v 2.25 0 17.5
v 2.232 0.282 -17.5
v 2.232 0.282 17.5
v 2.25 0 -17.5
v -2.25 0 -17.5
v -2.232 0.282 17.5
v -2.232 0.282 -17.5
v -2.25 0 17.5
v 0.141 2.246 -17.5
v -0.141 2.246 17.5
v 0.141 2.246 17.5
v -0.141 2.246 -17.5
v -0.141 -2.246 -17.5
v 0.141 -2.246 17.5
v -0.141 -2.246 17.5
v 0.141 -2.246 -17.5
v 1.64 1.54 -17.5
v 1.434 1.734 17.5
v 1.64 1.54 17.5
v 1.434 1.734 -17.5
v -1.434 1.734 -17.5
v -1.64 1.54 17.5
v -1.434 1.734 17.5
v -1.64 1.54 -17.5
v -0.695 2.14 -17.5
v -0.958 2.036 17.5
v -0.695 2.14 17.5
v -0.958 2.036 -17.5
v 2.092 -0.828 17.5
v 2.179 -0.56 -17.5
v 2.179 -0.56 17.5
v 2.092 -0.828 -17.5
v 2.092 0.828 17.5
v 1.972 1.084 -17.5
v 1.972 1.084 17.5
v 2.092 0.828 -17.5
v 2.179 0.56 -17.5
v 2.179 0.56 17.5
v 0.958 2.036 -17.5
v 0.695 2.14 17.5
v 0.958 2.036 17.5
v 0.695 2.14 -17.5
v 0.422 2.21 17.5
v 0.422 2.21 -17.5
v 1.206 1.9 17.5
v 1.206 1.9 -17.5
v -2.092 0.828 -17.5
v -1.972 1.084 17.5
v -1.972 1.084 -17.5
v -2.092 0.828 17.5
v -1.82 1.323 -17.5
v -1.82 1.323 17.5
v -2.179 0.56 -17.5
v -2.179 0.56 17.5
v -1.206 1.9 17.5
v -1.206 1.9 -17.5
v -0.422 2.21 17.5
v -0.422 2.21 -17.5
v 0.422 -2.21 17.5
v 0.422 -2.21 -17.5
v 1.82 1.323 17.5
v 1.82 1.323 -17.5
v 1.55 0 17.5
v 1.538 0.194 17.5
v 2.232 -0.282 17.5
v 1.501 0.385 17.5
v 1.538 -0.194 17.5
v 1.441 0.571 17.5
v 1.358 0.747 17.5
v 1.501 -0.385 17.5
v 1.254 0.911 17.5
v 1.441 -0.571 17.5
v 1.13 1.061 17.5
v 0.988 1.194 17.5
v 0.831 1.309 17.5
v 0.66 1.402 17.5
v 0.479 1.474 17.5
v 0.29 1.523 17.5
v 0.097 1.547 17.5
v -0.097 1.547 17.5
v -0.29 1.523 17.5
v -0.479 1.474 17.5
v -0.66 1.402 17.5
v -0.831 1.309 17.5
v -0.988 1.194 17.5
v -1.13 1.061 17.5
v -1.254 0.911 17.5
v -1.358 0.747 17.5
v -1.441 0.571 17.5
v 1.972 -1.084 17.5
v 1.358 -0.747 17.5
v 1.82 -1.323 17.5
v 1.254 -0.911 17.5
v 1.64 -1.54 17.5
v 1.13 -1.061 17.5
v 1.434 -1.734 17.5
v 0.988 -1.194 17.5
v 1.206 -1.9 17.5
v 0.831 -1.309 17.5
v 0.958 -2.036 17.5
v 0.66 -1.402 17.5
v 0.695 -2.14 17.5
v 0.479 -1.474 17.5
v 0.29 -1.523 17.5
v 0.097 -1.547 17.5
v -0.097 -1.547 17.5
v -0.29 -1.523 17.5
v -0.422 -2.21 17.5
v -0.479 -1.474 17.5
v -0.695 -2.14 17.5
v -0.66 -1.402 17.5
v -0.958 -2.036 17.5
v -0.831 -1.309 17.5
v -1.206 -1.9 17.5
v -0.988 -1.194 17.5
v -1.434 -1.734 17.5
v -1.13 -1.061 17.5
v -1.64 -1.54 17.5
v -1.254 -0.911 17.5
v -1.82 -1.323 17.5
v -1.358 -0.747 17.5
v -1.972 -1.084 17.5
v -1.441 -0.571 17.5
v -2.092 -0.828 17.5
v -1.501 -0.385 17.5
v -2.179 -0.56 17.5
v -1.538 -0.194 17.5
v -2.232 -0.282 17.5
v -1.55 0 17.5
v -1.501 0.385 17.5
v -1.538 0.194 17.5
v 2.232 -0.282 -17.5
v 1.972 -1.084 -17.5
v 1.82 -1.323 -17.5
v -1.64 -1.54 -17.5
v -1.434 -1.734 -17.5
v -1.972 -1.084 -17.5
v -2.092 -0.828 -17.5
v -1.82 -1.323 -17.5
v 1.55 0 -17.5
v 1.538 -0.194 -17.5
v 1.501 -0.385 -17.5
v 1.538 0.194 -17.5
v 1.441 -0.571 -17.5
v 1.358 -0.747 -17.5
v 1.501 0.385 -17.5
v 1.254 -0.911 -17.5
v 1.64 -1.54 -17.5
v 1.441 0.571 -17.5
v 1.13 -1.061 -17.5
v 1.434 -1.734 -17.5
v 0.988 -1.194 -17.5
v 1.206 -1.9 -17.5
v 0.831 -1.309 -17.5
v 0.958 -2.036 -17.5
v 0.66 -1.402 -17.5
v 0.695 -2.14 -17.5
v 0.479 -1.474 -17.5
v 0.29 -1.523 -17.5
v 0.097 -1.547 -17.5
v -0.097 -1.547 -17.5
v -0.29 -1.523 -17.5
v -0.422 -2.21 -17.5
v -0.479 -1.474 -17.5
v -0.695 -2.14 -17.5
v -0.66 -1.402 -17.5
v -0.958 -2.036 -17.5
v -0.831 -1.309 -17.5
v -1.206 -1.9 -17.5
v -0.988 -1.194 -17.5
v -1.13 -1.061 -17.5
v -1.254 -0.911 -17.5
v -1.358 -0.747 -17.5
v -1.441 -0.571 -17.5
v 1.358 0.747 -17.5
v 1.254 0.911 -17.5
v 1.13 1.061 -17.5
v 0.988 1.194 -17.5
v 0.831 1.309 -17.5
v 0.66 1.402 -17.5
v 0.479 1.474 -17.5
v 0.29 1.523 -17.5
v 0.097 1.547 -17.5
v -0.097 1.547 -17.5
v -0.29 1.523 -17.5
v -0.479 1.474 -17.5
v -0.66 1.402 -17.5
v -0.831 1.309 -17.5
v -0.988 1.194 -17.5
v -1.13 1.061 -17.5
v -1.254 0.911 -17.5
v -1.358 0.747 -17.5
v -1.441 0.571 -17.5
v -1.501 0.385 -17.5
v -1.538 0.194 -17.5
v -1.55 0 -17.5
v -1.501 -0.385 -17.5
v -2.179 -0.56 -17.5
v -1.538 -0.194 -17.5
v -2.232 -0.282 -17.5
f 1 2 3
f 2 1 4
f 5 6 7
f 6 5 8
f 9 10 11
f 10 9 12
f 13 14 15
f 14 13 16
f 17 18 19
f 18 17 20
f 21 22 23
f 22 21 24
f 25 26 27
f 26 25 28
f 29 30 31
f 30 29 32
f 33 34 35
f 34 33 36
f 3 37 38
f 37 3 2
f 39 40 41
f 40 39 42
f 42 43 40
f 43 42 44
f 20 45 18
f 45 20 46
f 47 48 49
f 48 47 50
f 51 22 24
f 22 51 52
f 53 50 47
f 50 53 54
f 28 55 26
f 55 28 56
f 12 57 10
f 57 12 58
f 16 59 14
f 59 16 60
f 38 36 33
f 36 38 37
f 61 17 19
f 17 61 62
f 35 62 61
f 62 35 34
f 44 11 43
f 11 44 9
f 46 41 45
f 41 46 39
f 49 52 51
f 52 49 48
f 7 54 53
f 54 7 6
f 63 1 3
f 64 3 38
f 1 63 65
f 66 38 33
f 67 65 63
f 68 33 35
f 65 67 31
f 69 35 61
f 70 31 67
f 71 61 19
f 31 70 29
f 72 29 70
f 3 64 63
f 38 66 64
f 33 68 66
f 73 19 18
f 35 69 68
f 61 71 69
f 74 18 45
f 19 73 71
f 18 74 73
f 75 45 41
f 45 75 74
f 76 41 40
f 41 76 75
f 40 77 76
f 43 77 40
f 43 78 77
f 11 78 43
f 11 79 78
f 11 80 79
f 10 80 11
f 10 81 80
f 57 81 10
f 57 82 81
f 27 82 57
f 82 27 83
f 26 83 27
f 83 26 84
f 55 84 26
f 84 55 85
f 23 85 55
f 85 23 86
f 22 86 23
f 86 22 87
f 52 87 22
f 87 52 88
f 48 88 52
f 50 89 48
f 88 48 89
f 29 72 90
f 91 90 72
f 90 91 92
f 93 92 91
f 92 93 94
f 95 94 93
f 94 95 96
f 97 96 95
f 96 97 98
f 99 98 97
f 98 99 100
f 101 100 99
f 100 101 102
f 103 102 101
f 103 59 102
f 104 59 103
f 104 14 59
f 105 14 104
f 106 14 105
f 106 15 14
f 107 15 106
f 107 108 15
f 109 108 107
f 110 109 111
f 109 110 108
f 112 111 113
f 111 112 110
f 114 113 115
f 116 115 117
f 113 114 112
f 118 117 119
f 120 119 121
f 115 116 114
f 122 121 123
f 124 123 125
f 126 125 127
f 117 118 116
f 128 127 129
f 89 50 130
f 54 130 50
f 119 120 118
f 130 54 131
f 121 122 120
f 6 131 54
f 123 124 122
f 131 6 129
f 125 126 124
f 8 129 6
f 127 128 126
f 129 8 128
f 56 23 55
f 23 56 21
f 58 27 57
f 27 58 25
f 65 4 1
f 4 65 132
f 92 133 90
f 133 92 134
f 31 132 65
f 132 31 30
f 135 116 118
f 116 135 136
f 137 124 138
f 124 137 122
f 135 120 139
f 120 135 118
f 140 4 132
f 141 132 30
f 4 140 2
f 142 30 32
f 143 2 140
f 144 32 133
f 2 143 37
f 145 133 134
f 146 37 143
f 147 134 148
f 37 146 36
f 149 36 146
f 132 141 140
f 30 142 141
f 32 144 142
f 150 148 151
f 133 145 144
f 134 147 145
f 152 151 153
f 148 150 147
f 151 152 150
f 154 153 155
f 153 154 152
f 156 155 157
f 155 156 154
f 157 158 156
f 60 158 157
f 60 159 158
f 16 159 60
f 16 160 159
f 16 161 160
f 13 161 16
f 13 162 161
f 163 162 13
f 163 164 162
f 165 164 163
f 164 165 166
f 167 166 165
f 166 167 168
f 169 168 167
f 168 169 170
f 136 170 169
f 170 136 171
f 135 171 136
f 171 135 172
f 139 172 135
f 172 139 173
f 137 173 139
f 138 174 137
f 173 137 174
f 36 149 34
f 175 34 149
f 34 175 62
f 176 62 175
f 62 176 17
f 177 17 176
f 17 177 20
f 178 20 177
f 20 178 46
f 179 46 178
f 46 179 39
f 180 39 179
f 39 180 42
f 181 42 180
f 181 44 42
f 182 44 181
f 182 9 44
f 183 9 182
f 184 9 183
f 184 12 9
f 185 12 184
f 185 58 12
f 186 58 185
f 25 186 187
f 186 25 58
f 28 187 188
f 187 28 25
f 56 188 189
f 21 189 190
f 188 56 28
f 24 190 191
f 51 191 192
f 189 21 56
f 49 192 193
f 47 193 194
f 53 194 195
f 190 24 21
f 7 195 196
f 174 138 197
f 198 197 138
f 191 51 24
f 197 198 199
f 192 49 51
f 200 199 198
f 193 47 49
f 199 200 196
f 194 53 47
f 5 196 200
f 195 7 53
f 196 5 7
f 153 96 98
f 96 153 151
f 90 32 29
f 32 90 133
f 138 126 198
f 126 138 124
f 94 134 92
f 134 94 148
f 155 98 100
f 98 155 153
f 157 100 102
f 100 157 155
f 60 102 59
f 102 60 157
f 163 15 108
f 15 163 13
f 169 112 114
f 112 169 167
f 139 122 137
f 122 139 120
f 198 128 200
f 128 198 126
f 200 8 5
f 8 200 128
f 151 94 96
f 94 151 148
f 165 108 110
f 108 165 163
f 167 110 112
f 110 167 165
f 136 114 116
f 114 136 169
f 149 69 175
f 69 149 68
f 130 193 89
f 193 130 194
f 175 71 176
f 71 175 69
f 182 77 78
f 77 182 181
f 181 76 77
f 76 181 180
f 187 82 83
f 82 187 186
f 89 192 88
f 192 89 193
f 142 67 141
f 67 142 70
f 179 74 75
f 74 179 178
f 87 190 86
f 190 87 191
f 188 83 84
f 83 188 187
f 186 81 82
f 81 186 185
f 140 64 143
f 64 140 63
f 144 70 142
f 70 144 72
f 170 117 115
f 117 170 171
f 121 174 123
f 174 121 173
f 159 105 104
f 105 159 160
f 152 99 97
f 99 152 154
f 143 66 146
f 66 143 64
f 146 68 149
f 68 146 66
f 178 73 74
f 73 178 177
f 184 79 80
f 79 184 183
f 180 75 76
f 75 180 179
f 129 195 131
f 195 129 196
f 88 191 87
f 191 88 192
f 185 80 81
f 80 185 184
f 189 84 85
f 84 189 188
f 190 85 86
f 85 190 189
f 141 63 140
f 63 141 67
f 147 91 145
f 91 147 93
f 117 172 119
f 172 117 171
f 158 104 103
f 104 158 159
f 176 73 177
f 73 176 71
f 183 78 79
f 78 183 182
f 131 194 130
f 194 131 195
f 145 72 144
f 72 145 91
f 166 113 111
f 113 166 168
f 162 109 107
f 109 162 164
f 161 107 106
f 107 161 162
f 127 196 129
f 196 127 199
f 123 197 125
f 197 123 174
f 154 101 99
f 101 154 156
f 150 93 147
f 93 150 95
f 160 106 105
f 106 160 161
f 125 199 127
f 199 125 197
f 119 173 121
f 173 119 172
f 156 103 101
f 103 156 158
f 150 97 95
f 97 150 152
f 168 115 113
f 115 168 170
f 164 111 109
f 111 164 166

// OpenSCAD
$fn = 50;


difference() {
	union() {
		translate(v = [0, 0, -17.5000000000]) {
			cylinder(h = 35, r = 2.2500000000);
		}
	}
	union() {
		translate(v = [0, 0, -100.0000000000]) {
			cylinder(h = 200, r = 1.5500000000);
		}
	}
}
